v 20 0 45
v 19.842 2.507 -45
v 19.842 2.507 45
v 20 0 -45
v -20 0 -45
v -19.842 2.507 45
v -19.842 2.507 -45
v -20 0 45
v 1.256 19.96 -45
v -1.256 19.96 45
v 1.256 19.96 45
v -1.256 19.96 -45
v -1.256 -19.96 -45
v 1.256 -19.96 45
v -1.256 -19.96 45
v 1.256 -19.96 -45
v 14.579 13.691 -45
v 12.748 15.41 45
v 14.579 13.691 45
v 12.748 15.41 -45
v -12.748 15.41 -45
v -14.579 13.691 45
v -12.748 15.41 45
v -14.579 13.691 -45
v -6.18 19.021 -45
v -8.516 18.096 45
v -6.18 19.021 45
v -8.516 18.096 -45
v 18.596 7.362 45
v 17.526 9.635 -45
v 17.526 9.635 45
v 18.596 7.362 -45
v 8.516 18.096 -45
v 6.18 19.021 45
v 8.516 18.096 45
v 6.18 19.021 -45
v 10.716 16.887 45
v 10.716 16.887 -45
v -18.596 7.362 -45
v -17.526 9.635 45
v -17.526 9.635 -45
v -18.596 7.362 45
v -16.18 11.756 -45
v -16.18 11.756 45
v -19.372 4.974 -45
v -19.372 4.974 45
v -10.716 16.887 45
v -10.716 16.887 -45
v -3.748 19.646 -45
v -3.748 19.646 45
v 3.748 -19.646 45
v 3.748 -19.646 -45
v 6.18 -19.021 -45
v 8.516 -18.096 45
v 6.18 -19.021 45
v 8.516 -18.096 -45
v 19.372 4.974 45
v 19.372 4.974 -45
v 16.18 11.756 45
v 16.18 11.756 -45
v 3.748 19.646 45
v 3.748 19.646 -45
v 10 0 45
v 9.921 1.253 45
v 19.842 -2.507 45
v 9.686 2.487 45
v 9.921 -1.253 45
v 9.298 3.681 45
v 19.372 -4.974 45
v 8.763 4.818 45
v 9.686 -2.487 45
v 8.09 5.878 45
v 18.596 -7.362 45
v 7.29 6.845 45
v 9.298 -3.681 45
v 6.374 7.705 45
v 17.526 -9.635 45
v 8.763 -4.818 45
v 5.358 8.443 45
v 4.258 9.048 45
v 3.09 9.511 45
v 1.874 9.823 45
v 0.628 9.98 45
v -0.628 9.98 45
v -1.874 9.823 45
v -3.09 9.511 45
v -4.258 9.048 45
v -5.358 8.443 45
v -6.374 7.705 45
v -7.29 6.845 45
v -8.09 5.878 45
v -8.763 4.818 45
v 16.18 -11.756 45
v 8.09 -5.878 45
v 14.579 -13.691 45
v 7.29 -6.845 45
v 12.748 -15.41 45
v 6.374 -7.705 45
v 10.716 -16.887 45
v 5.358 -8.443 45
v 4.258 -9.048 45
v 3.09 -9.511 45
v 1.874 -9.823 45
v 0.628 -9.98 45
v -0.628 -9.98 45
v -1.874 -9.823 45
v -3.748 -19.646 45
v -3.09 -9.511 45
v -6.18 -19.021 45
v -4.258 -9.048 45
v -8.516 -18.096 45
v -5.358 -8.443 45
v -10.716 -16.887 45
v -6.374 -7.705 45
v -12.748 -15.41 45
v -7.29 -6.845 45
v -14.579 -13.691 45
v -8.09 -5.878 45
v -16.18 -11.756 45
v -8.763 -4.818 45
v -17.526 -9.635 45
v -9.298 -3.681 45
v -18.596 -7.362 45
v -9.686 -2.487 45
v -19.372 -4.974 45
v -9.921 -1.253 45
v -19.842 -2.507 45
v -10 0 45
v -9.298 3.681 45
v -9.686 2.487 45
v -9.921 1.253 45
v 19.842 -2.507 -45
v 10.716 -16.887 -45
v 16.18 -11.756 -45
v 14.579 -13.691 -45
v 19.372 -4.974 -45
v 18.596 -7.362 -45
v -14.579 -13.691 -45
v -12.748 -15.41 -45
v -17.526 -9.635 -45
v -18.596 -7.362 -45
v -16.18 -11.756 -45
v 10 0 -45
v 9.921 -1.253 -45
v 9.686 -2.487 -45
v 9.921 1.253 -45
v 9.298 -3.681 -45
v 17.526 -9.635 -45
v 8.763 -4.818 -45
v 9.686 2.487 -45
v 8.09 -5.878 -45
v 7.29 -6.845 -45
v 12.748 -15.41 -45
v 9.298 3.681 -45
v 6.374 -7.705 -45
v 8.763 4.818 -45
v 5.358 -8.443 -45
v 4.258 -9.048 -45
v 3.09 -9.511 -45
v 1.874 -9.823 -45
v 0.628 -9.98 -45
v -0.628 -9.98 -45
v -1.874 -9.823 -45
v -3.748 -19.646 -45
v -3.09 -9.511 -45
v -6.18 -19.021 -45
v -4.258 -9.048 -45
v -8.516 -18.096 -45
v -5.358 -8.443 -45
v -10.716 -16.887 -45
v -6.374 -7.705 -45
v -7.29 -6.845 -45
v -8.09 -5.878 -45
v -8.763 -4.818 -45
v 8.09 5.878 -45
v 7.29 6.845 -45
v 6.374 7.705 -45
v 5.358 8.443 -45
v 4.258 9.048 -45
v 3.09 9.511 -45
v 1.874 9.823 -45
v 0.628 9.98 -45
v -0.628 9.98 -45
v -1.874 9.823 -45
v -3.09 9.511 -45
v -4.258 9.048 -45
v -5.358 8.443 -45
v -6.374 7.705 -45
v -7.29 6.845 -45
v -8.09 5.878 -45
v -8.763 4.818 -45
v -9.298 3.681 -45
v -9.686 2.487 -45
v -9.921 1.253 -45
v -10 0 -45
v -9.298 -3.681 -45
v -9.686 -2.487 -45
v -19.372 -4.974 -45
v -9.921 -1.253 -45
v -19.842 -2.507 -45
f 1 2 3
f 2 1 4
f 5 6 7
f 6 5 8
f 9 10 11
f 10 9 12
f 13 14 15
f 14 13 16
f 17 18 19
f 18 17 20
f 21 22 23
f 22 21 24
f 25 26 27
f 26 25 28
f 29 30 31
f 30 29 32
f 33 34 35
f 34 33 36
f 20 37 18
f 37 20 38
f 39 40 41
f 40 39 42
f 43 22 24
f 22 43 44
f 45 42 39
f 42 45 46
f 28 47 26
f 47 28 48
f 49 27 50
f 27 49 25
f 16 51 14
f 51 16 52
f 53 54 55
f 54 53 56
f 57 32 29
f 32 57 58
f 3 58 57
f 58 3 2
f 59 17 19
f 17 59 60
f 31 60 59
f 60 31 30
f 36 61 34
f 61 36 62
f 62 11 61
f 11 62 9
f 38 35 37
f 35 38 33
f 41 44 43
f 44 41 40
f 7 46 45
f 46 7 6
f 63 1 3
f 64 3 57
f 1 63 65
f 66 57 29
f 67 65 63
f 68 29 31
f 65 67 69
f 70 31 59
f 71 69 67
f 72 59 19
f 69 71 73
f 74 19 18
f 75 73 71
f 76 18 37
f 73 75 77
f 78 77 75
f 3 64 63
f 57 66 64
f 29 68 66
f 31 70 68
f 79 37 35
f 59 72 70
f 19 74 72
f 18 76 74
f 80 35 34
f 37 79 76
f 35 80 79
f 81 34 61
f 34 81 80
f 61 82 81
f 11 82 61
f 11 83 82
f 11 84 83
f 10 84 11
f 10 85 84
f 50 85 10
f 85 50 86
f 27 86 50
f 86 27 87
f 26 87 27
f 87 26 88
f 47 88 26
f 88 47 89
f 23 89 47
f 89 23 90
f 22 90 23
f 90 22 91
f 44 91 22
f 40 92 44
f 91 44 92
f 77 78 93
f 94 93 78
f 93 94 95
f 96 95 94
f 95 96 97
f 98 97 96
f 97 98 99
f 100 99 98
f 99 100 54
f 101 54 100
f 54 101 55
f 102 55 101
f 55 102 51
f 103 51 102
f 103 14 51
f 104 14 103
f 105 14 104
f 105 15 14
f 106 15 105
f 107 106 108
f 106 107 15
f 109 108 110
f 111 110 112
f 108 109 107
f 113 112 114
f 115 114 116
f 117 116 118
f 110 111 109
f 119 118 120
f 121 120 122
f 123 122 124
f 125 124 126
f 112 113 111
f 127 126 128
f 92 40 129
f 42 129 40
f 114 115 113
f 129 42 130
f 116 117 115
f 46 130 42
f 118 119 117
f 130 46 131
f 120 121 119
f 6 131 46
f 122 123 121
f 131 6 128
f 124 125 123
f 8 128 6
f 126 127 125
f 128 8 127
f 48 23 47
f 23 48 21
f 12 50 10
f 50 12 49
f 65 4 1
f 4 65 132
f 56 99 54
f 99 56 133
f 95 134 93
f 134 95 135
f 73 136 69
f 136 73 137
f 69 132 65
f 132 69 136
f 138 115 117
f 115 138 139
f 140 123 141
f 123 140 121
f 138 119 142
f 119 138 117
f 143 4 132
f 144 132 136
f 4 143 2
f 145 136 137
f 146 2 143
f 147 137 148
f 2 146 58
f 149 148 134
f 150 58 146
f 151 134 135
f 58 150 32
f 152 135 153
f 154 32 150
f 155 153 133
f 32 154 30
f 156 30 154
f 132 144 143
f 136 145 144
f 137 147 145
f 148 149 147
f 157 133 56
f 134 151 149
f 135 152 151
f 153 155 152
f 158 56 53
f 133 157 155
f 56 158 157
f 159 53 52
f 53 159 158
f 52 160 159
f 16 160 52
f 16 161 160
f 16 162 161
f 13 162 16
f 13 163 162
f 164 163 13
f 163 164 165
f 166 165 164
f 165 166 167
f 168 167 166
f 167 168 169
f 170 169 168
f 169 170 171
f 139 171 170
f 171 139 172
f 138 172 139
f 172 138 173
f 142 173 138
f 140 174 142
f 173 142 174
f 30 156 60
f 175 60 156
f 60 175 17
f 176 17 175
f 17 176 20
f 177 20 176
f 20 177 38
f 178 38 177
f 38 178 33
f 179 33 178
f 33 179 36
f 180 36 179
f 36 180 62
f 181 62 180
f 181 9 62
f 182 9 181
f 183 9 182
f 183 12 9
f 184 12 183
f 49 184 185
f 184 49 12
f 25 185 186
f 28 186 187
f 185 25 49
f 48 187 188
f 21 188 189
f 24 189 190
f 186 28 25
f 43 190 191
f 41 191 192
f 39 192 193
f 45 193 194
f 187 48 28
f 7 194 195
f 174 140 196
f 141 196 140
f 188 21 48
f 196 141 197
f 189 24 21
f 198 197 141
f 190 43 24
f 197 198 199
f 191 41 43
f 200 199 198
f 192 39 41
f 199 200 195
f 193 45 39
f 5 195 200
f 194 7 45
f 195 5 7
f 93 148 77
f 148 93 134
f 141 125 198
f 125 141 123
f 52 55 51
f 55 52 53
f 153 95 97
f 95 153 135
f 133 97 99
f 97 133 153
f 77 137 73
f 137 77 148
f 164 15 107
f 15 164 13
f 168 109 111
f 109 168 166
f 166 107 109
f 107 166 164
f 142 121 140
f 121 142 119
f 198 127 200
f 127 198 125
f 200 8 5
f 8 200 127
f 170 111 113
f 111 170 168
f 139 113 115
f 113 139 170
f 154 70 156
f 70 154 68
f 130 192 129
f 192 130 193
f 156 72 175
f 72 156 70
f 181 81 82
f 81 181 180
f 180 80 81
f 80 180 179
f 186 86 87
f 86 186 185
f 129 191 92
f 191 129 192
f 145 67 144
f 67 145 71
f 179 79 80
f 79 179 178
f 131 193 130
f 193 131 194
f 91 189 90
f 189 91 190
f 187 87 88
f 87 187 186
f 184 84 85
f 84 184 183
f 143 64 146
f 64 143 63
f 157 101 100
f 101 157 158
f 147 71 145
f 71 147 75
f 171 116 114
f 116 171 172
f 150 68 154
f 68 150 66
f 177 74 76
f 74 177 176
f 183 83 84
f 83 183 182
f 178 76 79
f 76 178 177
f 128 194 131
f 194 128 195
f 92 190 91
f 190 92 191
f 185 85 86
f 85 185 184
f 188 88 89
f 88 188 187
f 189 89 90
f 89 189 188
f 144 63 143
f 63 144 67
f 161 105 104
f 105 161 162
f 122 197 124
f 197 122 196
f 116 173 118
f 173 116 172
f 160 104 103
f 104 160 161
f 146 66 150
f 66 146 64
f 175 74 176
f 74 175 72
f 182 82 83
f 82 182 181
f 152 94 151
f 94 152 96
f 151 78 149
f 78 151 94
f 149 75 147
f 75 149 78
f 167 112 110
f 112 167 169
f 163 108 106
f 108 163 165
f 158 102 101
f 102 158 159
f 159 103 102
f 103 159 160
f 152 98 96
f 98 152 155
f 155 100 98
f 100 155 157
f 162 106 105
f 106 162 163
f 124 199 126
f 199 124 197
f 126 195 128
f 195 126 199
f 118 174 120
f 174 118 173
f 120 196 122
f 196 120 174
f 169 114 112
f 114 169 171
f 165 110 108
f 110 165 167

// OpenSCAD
$fn = 50;


difference() {
	union() {
		translate(v = [0, 0, -45.0000000000]) {
			cylinder(h = 90, r = 20.0000000000);
		}
	}
	union() {
		translate(v = [0, 0, -100.0000000000]) {
			cylinder(h = 200, r = 10);
		}
	}
}
